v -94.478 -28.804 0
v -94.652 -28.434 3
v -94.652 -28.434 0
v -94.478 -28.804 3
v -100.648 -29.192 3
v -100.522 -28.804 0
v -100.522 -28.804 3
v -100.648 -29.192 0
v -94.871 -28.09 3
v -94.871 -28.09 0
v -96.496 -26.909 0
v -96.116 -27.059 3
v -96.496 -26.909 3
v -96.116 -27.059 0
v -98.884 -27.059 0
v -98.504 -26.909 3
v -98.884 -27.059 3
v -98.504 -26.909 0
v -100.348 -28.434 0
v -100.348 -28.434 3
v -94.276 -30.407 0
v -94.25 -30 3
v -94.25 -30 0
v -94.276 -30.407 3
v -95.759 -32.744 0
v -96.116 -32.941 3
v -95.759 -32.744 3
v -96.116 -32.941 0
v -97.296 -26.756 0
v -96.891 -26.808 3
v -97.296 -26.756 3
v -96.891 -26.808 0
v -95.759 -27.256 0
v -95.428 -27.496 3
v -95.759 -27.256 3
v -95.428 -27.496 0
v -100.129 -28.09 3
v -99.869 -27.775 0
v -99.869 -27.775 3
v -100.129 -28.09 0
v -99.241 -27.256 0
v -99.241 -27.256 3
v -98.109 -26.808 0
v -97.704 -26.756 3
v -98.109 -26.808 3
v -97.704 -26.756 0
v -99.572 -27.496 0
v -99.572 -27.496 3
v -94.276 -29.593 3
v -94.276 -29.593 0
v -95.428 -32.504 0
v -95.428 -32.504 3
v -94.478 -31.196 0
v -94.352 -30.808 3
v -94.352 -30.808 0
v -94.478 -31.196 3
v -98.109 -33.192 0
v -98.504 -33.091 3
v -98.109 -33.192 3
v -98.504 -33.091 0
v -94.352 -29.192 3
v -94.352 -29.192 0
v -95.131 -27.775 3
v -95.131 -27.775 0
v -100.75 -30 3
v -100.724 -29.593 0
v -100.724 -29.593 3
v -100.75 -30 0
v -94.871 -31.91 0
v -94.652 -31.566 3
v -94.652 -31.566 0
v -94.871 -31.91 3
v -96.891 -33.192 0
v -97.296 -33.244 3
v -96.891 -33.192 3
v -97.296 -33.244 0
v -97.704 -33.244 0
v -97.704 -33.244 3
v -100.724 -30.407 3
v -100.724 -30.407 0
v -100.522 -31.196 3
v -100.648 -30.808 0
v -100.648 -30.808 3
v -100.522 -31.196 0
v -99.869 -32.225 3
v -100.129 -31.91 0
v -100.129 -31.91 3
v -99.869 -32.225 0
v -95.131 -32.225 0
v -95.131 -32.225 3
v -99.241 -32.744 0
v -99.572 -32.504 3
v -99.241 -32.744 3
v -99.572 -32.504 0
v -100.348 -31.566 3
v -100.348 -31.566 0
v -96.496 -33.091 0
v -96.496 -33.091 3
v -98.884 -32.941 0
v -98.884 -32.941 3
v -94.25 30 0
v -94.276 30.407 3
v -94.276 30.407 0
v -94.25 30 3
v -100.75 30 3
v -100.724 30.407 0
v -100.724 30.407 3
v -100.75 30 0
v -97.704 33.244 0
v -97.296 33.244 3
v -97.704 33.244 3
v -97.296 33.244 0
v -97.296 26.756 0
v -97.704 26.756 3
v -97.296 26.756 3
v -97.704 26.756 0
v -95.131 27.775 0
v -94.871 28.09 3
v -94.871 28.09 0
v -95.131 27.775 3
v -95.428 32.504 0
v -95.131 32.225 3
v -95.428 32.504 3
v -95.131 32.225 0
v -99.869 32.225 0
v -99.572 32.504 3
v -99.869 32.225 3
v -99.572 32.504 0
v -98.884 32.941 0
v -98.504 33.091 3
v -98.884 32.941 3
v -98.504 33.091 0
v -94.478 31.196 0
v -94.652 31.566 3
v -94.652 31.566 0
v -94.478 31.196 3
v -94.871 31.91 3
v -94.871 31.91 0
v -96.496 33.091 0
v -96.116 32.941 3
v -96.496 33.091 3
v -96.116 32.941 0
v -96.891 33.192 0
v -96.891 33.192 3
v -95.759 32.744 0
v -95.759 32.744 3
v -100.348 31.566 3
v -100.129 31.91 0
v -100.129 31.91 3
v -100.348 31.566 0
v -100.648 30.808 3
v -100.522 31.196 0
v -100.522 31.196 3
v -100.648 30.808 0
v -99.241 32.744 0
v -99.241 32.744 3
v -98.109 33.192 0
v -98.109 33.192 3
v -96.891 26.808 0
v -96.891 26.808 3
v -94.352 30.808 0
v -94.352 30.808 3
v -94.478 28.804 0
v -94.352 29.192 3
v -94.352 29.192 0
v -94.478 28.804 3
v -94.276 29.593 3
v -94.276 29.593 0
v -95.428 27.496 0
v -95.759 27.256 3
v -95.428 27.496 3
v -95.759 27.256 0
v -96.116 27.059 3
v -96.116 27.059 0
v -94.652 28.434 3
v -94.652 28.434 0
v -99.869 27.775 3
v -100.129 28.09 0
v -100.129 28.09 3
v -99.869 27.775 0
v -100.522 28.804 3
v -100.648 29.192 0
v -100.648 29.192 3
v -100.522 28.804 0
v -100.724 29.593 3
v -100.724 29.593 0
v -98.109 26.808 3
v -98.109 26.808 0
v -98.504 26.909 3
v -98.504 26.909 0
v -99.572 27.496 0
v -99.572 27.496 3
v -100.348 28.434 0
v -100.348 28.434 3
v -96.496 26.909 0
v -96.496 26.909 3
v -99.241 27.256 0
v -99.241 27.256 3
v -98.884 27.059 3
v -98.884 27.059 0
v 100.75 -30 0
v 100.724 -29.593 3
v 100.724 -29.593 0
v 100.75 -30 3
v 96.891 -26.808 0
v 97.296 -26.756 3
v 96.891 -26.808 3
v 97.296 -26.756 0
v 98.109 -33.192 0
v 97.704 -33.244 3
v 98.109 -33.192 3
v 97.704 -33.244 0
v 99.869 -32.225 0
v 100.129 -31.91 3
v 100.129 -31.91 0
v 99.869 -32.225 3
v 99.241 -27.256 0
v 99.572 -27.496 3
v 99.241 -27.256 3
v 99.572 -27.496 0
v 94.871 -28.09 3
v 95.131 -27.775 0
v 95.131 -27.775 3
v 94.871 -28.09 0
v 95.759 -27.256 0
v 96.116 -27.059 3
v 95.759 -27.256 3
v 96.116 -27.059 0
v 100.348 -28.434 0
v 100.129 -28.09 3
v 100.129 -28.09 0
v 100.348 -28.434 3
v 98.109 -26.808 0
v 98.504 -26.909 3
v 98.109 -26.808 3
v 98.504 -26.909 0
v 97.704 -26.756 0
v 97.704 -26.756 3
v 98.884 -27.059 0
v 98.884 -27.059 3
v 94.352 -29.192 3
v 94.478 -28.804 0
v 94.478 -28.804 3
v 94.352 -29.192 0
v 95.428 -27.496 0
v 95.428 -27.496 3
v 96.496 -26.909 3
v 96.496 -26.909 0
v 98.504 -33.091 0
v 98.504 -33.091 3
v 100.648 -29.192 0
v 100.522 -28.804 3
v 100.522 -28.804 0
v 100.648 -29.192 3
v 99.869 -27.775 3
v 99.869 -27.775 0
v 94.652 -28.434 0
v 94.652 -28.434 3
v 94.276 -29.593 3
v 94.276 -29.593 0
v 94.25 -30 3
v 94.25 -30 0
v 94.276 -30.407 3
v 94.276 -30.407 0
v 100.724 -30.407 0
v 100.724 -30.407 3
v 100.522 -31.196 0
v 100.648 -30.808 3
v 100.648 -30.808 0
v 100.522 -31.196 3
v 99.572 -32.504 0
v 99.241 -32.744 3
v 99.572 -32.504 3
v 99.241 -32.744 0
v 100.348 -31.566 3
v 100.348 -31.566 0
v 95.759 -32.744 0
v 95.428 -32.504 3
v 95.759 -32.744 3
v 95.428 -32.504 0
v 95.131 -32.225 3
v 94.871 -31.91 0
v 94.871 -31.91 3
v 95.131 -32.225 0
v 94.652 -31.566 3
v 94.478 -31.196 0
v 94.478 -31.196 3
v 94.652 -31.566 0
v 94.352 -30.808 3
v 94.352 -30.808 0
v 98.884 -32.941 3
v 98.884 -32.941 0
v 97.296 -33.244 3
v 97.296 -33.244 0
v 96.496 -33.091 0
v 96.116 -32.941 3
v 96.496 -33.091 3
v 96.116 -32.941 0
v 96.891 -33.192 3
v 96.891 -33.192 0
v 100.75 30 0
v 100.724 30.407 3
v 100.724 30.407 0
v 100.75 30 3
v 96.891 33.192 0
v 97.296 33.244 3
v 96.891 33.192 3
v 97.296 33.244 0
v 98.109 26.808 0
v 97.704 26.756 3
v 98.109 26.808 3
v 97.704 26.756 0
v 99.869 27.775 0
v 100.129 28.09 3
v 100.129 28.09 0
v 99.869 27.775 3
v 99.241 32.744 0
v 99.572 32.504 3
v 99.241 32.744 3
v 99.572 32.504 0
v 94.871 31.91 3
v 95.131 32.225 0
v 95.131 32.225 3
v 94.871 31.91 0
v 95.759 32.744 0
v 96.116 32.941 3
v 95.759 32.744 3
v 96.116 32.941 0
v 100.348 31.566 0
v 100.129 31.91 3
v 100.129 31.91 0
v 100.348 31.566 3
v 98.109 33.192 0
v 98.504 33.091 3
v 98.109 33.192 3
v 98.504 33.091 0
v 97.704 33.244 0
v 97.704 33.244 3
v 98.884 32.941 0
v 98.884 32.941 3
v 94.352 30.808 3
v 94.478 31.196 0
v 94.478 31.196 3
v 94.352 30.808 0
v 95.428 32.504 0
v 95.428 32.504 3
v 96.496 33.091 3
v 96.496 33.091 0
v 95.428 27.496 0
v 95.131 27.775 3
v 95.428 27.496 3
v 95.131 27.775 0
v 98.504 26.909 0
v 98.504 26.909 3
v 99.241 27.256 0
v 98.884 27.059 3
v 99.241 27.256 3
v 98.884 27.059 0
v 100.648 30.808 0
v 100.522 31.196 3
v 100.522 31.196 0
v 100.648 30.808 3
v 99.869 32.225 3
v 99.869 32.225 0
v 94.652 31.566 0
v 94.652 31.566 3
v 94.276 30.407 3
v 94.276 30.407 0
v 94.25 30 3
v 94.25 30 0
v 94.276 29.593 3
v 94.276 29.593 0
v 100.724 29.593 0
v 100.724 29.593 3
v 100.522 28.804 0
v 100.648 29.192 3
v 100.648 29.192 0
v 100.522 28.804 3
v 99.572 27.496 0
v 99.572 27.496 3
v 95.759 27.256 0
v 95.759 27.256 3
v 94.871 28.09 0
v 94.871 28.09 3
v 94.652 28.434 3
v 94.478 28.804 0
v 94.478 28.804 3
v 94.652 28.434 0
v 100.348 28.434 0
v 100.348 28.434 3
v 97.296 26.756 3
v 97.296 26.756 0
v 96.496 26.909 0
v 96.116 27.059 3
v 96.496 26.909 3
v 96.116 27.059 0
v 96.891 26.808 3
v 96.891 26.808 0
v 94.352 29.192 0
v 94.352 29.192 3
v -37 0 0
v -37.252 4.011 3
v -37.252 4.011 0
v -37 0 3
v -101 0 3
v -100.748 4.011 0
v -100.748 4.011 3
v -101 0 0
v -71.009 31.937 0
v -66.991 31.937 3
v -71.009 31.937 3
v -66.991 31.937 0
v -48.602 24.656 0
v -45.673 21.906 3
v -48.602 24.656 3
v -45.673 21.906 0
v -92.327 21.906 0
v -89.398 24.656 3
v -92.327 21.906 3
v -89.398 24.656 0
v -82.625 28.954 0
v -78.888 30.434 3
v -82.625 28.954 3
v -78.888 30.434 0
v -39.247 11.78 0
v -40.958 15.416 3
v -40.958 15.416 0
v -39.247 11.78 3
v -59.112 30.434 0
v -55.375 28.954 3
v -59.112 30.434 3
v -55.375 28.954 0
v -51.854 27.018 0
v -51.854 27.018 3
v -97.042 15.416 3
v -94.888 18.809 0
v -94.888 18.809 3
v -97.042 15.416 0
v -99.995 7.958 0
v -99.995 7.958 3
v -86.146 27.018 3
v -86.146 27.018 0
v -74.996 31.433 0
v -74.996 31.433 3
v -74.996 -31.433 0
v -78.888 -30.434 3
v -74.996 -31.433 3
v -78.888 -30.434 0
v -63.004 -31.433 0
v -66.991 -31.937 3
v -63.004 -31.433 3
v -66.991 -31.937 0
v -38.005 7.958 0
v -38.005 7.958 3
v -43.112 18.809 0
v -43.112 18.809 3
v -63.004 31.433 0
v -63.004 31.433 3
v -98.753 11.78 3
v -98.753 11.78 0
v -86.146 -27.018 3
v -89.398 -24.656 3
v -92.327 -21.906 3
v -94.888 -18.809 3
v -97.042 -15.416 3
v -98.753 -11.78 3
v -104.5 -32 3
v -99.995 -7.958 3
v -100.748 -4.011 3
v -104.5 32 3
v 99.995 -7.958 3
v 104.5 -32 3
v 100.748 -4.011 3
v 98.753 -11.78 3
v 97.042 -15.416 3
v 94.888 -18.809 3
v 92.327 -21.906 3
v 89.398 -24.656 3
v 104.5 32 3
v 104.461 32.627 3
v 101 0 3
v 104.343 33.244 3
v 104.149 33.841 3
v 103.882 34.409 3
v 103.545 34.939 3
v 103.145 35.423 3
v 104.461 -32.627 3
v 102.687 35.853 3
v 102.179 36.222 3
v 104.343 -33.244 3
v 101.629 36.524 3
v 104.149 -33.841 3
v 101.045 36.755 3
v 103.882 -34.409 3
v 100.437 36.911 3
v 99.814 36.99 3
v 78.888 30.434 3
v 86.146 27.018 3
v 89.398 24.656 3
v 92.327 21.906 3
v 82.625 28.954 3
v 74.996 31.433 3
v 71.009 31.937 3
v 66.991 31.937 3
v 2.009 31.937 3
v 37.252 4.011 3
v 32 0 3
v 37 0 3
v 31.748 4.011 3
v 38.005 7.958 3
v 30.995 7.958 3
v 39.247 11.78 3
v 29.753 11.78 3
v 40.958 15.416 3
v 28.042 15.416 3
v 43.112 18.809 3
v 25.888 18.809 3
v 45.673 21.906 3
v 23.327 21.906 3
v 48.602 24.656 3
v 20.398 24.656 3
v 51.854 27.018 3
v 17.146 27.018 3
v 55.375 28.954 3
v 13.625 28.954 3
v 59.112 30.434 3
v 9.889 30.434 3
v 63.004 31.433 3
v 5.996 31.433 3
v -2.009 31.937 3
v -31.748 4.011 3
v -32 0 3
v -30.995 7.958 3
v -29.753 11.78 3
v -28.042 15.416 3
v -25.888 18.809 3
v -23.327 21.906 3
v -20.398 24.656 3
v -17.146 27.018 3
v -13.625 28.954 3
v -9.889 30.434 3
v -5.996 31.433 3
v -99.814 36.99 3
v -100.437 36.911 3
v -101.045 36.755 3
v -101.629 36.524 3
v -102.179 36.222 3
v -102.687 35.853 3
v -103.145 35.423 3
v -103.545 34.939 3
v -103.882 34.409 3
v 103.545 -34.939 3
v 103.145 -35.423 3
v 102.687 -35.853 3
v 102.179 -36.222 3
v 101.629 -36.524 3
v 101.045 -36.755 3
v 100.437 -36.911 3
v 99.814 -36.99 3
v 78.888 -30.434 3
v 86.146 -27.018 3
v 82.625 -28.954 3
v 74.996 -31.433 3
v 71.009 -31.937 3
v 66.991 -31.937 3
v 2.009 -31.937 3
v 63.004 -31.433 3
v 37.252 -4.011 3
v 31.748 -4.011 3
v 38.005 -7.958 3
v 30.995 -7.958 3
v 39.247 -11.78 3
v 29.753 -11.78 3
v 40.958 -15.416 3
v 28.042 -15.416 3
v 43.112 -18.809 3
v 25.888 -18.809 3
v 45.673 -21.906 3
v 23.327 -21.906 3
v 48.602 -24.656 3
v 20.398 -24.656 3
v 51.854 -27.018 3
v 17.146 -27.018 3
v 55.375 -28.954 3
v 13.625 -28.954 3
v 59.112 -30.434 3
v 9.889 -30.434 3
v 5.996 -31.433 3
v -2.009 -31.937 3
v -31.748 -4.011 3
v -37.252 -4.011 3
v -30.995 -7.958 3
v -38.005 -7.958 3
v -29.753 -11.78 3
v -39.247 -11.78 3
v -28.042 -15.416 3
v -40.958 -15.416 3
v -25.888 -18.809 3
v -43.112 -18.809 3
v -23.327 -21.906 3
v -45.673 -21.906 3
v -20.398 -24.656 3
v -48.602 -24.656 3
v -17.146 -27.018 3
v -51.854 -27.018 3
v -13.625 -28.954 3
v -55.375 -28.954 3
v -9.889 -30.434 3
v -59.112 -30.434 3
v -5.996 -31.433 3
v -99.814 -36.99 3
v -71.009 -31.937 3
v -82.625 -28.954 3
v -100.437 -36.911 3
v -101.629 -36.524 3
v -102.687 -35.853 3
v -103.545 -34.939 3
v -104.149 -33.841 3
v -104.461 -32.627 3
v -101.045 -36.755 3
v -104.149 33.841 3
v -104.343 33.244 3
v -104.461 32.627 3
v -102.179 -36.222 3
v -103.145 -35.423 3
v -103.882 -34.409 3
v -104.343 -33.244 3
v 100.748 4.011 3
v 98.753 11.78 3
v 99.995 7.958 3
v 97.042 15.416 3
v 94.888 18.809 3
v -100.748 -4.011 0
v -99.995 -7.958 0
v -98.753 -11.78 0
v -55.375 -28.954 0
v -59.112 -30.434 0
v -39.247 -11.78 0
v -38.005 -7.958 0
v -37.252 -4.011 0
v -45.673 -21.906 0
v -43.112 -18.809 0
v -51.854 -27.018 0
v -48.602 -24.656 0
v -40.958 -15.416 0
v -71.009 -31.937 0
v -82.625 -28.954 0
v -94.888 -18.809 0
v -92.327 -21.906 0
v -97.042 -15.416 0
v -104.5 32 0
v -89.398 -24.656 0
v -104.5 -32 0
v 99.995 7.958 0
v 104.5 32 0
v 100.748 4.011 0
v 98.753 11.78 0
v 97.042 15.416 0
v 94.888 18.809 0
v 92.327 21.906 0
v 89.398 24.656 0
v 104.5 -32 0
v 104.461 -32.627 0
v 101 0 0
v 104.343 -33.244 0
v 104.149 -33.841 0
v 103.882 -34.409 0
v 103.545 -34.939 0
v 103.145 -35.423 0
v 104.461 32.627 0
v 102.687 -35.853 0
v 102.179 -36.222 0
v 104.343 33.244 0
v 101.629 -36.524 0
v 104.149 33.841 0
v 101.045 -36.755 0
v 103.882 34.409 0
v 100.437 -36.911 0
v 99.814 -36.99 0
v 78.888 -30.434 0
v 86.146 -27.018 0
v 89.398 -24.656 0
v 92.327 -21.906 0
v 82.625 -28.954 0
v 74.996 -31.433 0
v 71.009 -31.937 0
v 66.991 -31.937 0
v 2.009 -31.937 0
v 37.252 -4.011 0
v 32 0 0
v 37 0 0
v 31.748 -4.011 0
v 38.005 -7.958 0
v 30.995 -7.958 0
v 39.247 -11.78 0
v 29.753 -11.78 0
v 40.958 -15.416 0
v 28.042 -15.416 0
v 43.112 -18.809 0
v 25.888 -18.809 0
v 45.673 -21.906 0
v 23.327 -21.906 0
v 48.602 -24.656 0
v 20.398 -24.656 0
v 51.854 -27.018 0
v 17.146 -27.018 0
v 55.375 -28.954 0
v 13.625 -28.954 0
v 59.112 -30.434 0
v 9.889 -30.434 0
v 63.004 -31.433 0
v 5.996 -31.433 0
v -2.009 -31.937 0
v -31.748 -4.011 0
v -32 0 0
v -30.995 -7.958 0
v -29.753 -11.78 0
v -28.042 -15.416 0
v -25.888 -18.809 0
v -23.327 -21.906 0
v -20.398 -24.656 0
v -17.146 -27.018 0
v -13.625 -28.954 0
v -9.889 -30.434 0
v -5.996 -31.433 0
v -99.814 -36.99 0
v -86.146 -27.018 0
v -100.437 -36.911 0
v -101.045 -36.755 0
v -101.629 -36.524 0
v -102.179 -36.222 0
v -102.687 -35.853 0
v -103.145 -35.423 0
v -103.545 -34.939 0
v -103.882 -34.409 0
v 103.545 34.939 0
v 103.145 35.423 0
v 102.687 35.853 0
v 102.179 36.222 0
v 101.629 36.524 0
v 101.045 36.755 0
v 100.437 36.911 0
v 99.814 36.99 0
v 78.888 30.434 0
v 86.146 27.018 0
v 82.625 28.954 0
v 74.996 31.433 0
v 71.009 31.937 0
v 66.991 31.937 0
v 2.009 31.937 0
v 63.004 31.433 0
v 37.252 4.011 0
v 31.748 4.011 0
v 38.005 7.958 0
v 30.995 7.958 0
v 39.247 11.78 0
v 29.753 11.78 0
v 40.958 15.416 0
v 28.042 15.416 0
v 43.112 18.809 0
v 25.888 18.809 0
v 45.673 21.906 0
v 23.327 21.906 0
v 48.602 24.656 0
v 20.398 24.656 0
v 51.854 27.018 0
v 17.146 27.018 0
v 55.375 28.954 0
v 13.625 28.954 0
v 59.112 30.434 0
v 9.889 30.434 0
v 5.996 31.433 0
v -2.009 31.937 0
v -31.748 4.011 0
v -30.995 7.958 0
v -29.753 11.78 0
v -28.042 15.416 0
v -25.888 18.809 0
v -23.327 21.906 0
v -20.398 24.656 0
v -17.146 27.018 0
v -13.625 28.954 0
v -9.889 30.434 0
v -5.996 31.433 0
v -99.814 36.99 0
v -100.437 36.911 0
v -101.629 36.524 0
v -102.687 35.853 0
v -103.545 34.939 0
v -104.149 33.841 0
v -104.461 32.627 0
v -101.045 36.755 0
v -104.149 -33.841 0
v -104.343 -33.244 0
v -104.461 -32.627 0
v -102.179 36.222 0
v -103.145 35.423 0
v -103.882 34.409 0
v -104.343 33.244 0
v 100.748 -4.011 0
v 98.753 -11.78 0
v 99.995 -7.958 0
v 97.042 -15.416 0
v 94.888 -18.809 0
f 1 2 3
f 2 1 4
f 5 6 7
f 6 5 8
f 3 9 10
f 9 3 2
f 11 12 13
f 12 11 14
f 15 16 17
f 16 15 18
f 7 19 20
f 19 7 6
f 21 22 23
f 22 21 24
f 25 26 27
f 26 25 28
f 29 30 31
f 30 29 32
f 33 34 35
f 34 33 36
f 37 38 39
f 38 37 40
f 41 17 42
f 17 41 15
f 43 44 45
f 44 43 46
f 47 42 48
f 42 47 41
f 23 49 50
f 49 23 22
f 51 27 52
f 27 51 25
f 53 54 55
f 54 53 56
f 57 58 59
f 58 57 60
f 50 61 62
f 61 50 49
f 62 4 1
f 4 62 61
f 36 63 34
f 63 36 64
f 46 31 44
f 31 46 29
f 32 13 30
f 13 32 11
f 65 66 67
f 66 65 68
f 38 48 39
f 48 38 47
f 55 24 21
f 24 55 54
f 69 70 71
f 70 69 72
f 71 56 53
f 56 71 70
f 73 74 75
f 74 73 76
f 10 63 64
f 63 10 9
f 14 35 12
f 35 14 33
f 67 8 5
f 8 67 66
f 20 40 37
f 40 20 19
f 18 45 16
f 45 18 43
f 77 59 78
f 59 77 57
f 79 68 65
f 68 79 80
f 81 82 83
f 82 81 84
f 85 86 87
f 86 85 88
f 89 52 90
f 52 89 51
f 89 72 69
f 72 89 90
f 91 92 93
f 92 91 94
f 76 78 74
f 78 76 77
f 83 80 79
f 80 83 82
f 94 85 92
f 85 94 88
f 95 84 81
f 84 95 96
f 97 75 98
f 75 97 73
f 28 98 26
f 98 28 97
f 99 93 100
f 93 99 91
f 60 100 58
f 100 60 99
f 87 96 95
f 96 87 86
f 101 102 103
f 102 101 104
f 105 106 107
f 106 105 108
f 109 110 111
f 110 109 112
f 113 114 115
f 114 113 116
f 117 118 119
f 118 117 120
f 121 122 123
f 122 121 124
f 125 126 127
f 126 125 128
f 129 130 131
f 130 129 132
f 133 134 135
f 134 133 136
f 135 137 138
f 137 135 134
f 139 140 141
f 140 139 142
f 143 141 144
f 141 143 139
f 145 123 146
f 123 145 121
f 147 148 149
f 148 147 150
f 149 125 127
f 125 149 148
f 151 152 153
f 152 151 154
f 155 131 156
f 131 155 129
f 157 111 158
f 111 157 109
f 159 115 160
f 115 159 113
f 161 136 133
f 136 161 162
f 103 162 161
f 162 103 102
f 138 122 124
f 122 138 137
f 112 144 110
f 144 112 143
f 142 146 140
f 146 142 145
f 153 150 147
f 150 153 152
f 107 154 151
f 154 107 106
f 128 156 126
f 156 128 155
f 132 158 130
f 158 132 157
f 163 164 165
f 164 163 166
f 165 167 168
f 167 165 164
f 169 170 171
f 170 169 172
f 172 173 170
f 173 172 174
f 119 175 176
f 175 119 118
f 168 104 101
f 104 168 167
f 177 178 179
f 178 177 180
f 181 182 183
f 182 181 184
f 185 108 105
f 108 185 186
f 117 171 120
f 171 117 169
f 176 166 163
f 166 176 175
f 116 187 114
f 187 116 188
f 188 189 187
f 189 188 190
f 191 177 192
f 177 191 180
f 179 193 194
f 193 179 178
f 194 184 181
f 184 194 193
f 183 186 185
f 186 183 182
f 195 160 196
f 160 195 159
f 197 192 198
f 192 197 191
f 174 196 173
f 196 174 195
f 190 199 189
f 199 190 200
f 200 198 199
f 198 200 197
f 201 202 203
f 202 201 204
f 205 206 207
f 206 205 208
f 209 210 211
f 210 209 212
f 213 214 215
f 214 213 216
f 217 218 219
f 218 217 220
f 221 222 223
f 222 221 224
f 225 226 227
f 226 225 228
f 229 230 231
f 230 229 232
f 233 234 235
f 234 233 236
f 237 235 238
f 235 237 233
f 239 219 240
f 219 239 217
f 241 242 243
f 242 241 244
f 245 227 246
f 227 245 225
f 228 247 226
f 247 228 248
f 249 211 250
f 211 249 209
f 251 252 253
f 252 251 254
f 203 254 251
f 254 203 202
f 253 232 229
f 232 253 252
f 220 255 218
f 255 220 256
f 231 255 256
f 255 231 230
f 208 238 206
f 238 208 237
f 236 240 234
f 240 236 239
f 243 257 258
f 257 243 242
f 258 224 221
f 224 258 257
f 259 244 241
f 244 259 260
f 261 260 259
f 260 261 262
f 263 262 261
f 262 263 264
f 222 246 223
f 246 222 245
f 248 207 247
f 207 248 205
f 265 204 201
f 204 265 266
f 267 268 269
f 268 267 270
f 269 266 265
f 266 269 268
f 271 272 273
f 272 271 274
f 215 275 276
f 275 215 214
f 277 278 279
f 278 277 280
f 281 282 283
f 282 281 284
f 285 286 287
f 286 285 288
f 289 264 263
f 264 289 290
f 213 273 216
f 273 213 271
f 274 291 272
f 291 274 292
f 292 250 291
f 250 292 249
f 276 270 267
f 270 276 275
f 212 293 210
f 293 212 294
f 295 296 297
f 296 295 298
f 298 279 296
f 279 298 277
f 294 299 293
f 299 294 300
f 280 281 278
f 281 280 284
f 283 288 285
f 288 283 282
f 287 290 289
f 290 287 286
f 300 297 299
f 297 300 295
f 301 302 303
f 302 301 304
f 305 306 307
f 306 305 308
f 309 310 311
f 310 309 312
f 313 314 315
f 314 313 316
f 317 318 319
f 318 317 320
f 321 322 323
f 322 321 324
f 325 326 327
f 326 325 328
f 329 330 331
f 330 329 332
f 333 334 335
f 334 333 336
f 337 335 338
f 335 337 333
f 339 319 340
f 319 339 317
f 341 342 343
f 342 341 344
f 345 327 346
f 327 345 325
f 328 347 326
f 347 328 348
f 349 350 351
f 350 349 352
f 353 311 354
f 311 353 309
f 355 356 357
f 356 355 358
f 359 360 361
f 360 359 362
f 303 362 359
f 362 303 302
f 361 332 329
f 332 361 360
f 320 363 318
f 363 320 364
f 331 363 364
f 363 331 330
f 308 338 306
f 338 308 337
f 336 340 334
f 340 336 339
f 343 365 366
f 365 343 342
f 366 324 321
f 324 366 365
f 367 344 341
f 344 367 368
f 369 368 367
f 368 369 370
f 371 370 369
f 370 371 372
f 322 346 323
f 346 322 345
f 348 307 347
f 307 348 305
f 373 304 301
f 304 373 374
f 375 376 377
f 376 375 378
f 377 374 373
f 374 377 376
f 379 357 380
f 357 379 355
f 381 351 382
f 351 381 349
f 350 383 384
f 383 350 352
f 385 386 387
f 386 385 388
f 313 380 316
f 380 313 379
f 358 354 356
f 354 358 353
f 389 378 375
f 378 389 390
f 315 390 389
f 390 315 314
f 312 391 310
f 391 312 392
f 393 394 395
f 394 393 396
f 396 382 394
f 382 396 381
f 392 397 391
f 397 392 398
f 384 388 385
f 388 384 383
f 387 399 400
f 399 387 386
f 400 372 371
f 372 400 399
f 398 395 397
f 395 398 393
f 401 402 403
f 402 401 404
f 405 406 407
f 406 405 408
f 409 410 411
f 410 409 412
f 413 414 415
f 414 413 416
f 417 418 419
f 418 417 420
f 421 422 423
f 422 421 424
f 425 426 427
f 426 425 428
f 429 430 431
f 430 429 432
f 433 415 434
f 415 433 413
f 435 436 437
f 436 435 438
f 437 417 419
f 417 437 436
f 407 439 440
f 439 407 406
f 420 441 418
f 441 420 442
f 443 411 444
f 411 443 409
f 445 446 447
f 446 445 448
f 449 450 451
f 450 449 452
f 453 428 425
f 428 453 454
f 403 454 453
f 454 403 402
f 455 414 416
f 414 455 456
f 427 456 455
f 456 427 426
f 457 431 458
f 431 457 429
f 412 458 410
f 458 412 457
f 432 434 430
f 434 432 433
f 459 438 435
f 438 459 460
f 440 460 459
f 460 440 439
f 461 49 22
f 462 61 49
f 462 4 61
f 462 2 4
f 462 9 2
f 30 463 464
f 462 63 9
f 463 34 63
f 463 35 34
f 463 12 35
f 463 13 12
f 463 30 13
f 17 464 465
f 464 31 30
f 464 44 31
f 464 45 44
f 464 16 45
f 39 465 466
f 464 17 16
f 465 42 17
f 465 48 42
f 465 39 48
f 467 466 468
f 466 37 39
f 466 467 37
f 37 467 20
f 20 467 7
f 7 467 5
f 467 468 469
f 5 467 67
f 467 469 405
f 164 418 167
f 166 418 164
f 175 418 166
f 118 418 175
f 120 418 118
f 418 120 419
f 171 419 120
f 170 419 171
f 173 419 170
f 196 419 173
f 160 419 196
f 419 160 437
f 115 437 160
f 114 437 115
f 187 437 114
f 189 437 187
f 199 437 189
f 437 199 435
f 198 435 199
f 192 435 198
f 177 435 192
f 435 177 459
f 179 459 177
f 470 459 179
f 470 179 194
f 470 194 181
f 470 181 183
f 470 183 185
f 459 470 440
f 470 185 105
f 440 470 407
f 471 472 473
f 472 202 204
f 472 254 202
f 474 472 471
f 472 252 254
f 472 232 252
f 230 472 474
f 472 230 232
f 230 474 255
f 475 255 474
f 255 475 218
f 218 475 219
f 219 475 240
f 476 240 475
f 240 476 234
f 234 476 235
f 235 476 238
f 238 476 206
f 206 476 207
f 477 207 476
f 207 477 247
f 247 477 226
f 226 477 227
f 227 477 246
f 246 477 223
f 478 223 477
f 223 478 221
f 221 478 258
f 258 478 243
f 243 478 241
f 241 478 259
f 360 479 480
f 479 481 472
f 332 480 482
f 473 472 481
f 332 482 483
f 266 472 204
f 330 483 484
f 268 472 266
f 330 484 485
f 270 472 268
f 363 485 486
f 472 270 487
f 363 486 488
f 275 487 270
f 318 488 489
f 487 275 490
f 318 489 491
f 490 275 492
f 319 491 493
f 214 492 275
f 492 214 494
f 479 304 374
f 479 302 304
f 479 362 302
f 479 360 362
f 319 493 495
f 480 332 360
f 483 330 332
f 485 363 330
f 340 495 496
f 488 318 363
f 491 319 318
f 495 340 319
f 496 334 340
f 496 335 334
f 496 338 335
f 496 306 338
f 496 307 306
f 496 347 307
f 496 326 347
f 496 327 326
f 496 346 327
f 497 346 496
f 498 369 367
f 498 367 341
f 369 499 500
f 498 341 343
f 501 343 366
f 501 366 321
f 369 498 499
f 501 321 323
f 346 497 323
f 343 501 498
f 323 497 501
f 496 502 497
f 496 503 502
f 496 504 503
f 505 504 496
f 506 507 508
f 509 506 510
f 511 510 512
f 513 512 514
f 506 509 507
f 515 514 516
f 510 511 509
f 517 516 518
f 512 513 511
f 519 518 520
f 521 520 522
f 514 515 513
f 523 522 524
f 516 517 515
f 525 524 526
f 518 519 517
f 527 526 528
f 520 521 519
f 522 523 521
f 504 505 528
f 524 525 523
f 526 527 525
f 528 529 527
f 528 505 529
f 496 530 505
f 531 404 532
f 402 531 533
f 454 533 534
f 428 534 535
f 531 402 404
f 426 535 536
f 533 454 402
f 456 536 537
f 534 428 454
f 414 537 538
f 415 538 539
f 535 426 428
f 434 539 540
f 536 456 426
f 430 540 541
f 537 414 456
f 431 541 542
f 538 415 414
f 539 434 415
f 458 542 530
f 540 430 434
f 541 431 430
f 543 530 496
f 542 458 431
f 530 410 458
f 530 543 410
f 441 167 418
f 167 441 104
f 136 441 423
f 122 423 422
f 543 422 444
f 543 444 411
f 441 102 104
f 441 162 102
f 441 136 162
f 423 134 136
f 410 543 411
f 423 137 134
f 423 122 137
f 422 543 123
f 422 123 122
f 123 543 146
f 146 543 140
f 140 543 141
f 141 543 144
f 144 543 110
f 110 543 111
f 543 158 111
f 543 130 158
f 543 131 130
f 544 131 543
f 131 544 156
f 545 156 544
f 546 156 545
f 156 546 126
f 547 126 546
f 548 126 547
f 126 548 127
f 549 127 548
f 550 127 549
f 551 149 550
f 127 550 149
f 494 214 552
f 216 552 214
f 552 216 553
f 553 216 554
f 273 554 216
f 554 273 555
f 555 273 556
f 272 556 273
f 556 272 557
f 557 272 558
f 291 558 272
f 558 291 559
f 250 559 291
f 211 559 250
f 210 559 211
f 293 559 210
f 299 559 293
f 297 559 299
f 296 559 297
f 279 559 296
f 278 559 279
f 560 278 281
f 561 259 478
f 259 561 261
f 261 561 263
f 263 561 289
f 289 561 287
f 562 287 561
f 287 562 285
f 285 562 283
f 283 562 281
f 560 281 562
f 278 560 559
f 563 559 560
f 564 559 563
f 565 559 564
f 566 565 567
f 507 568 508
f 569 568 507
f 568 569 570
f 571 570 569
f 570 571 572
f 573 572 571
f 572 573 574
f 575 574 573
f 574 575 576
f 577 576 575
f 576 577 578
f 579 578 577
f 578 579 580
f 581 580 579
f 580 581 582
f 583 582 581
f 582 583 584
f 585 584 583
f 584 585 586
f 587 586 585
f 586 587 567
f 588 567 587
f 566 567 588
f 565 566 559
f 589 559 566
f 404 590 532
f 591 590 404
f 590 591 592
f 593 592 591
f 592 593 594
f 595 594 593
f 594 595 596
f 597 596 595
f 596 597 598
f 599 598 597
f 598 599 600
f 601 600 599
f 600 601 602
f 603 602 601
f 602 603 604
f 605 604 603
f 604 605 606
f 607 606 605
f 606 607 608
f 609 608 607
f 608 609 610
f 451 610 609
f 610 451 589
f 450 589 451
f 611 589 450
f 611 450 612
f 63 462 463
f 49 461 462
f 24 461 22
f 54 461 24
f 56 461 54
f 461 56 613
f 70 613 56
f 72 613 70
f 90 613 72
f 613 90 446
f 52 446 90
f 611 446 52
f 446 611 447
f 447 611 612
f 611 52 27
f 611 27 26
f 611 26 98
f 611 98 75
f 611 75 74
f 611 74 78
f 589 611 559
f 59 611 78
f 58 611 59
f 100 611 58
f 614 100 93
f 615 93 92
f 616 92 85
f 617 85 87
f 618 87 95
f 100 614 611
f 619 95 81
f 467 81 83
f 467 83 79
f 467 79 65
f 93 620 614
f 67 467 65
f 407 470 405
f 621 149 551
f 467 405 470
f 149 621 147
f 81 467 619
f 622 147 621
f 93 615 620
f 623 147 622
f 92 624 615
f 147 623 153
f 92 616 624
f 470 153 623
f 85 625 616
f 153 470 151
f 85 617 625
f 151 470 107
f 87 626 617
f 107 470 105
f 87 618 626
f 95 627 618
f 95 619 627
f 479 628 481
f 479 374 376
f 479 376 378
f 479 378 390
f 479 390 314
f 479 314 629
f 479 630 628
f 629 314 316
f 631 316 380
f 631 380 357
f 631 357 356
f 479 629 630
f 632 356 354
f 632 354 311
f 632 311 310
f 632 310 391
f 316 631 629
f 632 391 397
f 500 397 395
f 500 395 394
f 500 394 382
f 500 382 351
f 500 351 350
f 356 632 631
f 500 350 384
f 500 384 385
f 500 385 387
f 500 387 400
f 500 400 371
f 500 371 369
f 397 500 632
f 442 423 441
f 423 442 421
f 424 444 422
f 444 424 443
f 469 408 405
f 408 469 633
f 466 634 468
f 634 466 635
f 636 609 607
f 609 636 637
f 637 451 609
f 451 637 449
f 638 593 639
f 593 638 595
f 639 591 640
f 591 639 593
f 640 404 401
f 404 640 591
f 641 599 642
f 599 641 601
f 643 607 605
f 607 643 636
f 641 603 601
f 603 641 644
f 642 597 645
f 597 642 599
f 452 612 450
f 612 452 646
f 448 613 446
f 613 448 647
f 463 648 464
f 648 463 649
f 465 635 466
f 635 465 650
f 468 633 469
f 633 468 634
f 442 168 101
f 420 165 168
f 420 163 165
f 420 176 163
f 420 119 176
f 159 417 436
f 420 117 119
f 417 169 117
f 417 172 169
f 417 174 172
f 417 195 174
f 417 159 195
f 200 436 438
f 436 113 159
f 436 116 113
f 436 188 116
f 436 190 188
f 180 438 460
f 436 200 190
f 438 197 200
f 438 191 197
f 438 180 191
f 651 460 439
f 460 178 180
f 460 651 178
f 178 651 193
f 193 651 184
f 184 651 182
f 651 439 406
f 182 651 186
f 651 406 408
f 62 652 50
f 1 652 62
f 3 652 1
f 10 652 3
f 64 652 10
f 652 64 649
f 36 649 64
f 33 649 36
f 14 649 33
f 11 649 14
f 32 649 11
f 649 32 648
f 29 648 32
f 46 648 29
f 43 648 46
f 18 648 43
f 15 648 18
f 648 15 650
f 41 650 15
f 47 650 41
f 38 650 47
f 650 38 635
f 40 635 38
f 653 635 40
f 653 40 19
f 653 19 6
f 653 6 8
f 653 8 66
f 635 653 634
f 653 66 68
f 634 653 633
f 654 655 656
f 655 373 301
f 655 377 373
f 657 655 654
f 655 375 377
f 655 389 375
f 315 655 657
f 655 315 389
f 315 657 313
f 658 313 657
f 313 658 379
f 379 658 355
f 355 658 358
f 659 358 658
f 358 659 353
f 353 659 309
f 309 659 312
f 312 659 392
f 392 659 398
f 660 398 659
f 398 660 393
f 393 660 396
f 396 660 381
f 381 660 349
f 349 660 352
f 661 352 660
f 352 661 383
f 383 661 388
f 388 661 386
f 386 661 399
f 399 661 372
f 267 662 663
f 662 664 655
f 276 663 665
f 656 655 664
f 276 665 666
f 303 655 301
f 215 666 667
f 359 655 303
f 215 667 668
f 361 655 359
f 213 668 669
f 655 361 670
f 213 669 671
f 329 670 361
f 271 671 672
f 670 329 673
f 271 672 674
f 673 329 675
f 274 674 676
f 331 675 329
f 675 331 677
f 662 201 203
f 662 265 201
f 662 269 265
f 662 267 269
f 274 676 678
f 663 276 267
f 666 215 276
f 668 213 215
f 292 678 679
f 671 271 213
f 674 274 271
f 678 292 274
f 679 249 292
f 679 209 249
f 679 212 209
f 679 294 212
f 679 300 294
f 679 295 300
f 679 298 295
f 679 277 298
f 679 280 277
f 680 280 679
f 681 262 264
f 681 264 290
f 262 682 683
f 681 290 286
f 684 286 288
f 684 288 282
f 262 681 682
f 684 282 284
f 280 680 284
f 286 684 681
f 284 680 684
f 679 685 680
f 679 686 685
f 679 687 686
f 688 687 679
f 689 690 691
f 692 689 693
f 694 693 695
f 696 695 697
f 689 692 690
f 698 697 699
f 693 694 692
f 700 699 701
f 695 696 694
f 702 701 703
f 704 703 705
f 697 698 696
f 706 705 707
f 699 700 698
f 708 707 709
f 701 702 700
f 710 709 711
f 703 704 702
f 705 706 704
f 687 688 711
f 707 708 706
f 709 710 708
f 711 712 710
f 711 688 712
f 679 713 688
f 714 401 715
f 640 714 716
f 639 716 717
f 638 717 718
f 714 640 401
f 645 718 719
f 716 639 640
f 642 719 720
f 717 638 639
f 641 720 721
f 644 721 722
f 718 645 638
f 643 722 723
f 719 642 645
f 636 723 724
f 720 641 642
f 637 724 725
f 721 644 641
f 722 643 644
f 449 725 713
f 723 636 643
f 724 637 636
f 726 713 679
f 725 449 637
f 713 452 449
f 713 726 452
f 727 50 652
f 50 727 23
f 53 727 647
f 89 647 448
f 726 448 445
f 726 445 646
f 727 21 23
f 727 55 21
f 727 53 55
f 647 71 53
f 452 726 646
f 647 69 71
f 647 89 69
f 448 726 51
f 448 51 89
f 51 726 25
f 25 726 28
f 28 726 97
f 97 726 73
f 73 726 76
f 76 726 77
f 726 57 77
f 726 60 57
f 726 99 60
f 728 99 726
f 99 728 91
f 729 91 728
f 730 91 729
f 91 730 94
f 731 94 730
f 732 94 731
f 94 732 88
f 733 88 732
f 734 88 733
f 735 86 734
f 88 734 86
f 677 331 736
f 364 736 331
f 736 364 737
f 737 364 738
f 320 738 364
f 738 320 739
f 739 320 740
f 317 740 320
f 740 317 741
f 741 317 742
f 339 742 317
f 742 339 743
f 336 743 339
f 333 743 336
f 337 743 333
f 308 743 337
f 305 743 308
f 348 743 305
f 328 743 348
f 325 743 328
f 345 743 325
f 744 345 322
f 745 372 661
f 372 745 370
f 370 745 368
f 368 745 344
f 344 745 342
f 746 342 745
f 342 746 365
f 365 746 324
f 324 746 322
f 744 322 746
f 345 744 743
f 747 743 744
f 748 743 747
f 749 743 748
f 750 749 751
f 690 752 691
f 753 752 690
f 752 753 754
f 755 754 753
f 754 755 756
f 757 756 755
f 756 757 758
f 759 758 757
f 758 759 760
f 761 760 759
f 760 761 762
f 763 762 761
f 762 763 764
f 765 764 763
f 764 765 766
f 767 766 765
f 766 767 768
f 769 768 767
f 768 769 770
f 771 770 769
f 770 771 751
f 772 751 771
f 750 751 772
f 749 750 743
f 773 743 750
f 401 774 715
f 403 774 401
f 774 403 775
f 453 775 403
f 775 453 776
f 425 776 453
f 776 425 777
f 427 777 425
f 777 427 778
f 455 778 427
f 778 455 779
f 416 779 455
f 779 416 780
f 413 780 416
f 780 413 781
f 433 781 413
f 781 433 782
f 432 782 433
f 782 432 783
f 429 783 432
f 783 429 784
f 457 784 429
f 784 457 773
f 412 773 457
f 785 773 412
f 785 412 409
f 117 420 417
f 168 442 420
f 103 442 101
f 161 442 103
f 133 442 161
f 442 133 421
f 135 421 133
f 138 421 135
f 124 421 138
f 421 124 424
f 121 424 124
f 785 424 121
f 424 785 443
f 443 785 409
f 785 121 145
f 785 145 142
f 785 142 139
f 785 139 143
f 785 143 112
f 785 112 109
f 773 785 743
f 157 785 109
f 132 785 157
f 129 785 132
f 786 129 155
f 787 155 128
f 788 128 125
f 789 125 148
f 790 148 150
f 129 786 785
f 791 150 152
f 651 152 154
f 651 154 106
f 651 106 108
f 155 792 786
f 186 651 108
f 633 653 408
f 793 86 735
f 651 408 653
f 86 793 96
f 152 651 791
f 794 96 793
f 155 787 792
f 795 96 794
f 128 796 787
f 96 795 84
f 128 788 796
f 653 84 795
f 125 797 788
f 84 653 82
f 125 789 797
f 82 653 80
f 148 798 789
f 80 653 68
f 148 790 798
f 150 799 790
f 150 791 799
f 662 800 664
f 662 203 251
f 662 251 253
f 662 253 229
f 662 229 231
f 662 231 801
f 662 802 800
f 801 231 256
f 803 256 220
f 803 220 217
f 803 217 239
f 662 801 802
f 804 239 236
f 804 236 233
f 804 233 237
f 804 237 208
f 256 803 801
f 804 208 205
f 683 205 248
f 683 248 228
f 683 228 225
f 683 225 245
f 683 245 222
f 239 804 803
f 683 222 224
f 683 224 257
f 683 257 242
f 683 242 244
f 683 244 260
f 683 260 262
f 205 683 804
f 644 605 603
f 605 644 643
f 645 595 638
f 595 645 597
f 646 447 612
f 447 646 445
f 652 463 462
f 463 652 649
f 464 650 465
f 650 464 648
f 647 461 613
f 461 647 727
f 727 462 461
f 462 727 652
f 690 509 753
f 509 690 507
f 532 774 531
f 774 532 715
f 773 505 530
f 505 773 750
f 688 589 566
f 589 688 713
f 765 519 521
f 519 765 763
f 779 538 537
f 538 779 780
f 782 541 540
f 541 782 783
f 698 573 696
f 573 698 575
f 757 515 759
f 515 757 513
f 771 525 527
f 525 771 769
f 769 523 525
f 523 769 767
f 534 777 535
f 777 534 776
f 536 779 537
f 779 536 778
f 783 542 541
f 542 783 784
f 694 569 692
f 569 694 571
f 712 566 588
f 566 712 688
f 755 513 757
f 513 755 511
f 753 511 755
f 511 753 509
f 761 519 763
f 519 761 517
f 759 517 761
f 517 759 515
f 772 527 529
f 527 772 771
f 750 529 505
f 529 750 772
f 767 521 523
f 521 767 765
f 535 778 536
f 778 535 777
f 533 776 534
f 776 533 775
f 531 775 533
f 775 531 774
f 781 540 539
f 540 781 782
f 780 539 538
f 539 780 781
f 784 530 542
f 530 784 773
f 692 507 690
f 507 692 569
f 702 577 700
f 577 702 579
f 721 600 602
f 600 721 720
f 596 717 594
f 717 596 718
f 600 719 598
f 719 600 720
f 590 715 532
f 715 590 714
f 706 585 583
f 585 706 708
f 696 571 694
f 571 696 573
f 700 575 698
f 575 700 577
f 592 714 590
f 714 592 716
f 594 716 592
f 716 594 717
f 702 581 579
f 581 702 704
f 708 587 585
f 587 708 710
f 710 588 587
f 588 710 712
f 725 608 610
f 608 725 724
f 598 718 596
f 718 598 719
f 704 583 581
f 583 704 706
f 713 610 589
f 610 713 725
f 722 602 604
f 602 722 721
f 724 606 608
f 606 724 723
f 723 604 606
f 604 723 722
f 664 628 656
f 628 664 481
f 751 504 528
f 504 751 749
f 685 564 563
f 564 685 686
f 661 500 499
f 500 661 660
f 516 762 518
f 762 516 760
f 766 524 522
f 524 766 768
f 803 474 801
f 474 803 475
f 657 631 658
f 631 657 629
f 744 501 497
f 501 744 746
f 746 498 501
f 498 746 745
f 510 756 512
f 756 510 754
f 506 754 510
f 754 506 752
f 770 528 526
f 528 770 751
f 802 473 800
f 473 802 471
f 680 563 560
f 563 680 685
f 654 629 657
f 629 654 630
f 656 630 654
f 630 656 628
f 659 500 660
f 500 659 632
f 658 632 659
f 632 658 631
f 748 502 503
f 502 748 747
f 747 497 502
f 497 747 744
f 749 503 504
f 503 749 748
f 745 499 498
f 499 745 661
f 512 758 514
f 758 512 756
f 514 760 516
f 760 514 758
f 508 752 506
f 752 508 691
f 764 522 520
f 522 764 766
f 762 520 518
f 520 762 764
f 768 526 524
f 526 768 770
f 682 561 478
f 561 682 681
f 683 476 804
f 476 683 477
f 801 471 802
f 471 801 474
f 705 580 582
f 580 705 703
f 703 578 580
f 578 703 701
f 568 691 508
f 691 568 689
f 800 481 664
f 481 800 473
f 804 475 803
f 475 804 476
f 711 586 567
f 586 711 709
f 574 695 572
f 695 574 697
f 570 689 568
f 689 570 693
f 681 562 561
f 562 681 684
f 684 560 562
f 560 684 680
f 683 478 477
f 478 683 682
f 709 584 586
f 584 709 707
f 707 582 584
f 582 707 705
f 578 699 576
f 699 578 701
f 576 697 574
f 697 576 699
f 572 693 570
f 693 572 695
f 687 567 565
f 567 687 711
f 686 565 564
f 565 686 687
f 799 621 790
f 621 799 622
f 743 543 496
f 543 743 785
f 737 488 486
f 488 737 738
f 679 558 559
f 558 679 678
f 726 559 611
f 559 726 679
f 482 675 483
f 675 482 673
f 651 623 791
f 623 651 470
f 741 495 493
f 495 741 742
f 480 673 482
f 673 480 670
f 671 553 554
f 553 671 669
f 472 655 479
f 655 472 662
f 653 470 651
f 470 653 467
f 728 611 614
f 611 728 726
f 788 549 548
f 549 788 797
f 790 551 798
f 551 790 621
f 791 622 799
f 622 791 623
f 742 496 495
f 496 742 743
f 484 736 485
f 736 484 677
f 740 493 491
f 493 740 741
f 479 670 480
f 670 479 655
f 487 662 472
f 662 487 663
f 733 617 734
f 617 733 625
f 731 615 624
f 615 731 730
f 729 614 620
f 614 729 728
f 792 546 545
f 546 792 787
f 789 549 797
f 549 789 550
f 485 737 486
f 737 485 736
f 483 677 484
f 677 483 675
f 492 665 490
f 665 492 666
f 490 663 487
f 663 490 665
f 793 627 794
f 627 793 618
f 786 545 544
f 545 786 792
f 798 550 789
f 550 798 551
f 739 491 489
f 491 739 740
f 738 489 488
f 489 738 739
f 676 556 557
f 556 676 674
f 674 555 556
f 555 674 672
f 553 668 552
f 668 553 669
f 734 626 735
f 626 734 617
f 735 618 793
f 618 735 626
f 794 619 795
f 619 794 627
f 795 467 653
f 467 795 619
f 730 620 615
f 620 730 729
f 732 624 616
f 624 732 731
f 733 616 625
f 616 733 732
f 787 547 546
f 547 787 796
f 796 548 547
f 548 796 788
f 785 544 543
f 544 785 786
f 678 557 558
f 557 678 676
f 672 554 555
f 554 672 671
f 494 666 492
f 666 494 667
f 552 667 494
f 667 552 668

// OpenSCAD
$fn = 50;


difference() {
	union() {
		hull() {
			translate(v = [-99.5000000000, 32.0000000000, 0]) {
				cylinder(h = 3, r = 5);
			}
			translate(v = [99.5000000000, 32.0000000000, 0]) {
				cylinder(h = 3, r = 5);
			}
			translate(v = [-99.5000000000, -32.0000000000, 0]) {
				cylinder(h = 3, r = 5);
			}
			translate(v = [99.5000000000, -32.0000000000, 0]) {
				cylinder(h = 3, r = 5);
			}
		}
	}
	union() {
		#translate(v = [-97.5000000000, -30.0000000000, -100.0000000000]) {
			cylinder(h = 200, r = 3.2500000000);
		}
		#translate(v = [-97.5000000000, 30.0000000000, -100.0000000000]) {
			cylinder(h = 200, r = 3.2500000000);
		}
		#translate(v = [97.5000000000, -30.0000000000, -100.0000000000]) {
			cylinder(h = 200, r = 3.2500000000);
		}
		#translate(v = [97.5000000000, 30.0000000000, -100.0000000000]) {
			cylinder(h = 200, r = 3.2500000000);
		}
		#translate(v = [-69.0000000000, 0, 0]) {
			cylinder(h = 3, r = 32.0000000000);
		}
		#cylinder(h = 3, r = 32.0000000000);
		#translate(v = [69.0000000000, 0, 0]) {
			cylinder(h = 3, r = 32.0000000000);
		}
	}
}
